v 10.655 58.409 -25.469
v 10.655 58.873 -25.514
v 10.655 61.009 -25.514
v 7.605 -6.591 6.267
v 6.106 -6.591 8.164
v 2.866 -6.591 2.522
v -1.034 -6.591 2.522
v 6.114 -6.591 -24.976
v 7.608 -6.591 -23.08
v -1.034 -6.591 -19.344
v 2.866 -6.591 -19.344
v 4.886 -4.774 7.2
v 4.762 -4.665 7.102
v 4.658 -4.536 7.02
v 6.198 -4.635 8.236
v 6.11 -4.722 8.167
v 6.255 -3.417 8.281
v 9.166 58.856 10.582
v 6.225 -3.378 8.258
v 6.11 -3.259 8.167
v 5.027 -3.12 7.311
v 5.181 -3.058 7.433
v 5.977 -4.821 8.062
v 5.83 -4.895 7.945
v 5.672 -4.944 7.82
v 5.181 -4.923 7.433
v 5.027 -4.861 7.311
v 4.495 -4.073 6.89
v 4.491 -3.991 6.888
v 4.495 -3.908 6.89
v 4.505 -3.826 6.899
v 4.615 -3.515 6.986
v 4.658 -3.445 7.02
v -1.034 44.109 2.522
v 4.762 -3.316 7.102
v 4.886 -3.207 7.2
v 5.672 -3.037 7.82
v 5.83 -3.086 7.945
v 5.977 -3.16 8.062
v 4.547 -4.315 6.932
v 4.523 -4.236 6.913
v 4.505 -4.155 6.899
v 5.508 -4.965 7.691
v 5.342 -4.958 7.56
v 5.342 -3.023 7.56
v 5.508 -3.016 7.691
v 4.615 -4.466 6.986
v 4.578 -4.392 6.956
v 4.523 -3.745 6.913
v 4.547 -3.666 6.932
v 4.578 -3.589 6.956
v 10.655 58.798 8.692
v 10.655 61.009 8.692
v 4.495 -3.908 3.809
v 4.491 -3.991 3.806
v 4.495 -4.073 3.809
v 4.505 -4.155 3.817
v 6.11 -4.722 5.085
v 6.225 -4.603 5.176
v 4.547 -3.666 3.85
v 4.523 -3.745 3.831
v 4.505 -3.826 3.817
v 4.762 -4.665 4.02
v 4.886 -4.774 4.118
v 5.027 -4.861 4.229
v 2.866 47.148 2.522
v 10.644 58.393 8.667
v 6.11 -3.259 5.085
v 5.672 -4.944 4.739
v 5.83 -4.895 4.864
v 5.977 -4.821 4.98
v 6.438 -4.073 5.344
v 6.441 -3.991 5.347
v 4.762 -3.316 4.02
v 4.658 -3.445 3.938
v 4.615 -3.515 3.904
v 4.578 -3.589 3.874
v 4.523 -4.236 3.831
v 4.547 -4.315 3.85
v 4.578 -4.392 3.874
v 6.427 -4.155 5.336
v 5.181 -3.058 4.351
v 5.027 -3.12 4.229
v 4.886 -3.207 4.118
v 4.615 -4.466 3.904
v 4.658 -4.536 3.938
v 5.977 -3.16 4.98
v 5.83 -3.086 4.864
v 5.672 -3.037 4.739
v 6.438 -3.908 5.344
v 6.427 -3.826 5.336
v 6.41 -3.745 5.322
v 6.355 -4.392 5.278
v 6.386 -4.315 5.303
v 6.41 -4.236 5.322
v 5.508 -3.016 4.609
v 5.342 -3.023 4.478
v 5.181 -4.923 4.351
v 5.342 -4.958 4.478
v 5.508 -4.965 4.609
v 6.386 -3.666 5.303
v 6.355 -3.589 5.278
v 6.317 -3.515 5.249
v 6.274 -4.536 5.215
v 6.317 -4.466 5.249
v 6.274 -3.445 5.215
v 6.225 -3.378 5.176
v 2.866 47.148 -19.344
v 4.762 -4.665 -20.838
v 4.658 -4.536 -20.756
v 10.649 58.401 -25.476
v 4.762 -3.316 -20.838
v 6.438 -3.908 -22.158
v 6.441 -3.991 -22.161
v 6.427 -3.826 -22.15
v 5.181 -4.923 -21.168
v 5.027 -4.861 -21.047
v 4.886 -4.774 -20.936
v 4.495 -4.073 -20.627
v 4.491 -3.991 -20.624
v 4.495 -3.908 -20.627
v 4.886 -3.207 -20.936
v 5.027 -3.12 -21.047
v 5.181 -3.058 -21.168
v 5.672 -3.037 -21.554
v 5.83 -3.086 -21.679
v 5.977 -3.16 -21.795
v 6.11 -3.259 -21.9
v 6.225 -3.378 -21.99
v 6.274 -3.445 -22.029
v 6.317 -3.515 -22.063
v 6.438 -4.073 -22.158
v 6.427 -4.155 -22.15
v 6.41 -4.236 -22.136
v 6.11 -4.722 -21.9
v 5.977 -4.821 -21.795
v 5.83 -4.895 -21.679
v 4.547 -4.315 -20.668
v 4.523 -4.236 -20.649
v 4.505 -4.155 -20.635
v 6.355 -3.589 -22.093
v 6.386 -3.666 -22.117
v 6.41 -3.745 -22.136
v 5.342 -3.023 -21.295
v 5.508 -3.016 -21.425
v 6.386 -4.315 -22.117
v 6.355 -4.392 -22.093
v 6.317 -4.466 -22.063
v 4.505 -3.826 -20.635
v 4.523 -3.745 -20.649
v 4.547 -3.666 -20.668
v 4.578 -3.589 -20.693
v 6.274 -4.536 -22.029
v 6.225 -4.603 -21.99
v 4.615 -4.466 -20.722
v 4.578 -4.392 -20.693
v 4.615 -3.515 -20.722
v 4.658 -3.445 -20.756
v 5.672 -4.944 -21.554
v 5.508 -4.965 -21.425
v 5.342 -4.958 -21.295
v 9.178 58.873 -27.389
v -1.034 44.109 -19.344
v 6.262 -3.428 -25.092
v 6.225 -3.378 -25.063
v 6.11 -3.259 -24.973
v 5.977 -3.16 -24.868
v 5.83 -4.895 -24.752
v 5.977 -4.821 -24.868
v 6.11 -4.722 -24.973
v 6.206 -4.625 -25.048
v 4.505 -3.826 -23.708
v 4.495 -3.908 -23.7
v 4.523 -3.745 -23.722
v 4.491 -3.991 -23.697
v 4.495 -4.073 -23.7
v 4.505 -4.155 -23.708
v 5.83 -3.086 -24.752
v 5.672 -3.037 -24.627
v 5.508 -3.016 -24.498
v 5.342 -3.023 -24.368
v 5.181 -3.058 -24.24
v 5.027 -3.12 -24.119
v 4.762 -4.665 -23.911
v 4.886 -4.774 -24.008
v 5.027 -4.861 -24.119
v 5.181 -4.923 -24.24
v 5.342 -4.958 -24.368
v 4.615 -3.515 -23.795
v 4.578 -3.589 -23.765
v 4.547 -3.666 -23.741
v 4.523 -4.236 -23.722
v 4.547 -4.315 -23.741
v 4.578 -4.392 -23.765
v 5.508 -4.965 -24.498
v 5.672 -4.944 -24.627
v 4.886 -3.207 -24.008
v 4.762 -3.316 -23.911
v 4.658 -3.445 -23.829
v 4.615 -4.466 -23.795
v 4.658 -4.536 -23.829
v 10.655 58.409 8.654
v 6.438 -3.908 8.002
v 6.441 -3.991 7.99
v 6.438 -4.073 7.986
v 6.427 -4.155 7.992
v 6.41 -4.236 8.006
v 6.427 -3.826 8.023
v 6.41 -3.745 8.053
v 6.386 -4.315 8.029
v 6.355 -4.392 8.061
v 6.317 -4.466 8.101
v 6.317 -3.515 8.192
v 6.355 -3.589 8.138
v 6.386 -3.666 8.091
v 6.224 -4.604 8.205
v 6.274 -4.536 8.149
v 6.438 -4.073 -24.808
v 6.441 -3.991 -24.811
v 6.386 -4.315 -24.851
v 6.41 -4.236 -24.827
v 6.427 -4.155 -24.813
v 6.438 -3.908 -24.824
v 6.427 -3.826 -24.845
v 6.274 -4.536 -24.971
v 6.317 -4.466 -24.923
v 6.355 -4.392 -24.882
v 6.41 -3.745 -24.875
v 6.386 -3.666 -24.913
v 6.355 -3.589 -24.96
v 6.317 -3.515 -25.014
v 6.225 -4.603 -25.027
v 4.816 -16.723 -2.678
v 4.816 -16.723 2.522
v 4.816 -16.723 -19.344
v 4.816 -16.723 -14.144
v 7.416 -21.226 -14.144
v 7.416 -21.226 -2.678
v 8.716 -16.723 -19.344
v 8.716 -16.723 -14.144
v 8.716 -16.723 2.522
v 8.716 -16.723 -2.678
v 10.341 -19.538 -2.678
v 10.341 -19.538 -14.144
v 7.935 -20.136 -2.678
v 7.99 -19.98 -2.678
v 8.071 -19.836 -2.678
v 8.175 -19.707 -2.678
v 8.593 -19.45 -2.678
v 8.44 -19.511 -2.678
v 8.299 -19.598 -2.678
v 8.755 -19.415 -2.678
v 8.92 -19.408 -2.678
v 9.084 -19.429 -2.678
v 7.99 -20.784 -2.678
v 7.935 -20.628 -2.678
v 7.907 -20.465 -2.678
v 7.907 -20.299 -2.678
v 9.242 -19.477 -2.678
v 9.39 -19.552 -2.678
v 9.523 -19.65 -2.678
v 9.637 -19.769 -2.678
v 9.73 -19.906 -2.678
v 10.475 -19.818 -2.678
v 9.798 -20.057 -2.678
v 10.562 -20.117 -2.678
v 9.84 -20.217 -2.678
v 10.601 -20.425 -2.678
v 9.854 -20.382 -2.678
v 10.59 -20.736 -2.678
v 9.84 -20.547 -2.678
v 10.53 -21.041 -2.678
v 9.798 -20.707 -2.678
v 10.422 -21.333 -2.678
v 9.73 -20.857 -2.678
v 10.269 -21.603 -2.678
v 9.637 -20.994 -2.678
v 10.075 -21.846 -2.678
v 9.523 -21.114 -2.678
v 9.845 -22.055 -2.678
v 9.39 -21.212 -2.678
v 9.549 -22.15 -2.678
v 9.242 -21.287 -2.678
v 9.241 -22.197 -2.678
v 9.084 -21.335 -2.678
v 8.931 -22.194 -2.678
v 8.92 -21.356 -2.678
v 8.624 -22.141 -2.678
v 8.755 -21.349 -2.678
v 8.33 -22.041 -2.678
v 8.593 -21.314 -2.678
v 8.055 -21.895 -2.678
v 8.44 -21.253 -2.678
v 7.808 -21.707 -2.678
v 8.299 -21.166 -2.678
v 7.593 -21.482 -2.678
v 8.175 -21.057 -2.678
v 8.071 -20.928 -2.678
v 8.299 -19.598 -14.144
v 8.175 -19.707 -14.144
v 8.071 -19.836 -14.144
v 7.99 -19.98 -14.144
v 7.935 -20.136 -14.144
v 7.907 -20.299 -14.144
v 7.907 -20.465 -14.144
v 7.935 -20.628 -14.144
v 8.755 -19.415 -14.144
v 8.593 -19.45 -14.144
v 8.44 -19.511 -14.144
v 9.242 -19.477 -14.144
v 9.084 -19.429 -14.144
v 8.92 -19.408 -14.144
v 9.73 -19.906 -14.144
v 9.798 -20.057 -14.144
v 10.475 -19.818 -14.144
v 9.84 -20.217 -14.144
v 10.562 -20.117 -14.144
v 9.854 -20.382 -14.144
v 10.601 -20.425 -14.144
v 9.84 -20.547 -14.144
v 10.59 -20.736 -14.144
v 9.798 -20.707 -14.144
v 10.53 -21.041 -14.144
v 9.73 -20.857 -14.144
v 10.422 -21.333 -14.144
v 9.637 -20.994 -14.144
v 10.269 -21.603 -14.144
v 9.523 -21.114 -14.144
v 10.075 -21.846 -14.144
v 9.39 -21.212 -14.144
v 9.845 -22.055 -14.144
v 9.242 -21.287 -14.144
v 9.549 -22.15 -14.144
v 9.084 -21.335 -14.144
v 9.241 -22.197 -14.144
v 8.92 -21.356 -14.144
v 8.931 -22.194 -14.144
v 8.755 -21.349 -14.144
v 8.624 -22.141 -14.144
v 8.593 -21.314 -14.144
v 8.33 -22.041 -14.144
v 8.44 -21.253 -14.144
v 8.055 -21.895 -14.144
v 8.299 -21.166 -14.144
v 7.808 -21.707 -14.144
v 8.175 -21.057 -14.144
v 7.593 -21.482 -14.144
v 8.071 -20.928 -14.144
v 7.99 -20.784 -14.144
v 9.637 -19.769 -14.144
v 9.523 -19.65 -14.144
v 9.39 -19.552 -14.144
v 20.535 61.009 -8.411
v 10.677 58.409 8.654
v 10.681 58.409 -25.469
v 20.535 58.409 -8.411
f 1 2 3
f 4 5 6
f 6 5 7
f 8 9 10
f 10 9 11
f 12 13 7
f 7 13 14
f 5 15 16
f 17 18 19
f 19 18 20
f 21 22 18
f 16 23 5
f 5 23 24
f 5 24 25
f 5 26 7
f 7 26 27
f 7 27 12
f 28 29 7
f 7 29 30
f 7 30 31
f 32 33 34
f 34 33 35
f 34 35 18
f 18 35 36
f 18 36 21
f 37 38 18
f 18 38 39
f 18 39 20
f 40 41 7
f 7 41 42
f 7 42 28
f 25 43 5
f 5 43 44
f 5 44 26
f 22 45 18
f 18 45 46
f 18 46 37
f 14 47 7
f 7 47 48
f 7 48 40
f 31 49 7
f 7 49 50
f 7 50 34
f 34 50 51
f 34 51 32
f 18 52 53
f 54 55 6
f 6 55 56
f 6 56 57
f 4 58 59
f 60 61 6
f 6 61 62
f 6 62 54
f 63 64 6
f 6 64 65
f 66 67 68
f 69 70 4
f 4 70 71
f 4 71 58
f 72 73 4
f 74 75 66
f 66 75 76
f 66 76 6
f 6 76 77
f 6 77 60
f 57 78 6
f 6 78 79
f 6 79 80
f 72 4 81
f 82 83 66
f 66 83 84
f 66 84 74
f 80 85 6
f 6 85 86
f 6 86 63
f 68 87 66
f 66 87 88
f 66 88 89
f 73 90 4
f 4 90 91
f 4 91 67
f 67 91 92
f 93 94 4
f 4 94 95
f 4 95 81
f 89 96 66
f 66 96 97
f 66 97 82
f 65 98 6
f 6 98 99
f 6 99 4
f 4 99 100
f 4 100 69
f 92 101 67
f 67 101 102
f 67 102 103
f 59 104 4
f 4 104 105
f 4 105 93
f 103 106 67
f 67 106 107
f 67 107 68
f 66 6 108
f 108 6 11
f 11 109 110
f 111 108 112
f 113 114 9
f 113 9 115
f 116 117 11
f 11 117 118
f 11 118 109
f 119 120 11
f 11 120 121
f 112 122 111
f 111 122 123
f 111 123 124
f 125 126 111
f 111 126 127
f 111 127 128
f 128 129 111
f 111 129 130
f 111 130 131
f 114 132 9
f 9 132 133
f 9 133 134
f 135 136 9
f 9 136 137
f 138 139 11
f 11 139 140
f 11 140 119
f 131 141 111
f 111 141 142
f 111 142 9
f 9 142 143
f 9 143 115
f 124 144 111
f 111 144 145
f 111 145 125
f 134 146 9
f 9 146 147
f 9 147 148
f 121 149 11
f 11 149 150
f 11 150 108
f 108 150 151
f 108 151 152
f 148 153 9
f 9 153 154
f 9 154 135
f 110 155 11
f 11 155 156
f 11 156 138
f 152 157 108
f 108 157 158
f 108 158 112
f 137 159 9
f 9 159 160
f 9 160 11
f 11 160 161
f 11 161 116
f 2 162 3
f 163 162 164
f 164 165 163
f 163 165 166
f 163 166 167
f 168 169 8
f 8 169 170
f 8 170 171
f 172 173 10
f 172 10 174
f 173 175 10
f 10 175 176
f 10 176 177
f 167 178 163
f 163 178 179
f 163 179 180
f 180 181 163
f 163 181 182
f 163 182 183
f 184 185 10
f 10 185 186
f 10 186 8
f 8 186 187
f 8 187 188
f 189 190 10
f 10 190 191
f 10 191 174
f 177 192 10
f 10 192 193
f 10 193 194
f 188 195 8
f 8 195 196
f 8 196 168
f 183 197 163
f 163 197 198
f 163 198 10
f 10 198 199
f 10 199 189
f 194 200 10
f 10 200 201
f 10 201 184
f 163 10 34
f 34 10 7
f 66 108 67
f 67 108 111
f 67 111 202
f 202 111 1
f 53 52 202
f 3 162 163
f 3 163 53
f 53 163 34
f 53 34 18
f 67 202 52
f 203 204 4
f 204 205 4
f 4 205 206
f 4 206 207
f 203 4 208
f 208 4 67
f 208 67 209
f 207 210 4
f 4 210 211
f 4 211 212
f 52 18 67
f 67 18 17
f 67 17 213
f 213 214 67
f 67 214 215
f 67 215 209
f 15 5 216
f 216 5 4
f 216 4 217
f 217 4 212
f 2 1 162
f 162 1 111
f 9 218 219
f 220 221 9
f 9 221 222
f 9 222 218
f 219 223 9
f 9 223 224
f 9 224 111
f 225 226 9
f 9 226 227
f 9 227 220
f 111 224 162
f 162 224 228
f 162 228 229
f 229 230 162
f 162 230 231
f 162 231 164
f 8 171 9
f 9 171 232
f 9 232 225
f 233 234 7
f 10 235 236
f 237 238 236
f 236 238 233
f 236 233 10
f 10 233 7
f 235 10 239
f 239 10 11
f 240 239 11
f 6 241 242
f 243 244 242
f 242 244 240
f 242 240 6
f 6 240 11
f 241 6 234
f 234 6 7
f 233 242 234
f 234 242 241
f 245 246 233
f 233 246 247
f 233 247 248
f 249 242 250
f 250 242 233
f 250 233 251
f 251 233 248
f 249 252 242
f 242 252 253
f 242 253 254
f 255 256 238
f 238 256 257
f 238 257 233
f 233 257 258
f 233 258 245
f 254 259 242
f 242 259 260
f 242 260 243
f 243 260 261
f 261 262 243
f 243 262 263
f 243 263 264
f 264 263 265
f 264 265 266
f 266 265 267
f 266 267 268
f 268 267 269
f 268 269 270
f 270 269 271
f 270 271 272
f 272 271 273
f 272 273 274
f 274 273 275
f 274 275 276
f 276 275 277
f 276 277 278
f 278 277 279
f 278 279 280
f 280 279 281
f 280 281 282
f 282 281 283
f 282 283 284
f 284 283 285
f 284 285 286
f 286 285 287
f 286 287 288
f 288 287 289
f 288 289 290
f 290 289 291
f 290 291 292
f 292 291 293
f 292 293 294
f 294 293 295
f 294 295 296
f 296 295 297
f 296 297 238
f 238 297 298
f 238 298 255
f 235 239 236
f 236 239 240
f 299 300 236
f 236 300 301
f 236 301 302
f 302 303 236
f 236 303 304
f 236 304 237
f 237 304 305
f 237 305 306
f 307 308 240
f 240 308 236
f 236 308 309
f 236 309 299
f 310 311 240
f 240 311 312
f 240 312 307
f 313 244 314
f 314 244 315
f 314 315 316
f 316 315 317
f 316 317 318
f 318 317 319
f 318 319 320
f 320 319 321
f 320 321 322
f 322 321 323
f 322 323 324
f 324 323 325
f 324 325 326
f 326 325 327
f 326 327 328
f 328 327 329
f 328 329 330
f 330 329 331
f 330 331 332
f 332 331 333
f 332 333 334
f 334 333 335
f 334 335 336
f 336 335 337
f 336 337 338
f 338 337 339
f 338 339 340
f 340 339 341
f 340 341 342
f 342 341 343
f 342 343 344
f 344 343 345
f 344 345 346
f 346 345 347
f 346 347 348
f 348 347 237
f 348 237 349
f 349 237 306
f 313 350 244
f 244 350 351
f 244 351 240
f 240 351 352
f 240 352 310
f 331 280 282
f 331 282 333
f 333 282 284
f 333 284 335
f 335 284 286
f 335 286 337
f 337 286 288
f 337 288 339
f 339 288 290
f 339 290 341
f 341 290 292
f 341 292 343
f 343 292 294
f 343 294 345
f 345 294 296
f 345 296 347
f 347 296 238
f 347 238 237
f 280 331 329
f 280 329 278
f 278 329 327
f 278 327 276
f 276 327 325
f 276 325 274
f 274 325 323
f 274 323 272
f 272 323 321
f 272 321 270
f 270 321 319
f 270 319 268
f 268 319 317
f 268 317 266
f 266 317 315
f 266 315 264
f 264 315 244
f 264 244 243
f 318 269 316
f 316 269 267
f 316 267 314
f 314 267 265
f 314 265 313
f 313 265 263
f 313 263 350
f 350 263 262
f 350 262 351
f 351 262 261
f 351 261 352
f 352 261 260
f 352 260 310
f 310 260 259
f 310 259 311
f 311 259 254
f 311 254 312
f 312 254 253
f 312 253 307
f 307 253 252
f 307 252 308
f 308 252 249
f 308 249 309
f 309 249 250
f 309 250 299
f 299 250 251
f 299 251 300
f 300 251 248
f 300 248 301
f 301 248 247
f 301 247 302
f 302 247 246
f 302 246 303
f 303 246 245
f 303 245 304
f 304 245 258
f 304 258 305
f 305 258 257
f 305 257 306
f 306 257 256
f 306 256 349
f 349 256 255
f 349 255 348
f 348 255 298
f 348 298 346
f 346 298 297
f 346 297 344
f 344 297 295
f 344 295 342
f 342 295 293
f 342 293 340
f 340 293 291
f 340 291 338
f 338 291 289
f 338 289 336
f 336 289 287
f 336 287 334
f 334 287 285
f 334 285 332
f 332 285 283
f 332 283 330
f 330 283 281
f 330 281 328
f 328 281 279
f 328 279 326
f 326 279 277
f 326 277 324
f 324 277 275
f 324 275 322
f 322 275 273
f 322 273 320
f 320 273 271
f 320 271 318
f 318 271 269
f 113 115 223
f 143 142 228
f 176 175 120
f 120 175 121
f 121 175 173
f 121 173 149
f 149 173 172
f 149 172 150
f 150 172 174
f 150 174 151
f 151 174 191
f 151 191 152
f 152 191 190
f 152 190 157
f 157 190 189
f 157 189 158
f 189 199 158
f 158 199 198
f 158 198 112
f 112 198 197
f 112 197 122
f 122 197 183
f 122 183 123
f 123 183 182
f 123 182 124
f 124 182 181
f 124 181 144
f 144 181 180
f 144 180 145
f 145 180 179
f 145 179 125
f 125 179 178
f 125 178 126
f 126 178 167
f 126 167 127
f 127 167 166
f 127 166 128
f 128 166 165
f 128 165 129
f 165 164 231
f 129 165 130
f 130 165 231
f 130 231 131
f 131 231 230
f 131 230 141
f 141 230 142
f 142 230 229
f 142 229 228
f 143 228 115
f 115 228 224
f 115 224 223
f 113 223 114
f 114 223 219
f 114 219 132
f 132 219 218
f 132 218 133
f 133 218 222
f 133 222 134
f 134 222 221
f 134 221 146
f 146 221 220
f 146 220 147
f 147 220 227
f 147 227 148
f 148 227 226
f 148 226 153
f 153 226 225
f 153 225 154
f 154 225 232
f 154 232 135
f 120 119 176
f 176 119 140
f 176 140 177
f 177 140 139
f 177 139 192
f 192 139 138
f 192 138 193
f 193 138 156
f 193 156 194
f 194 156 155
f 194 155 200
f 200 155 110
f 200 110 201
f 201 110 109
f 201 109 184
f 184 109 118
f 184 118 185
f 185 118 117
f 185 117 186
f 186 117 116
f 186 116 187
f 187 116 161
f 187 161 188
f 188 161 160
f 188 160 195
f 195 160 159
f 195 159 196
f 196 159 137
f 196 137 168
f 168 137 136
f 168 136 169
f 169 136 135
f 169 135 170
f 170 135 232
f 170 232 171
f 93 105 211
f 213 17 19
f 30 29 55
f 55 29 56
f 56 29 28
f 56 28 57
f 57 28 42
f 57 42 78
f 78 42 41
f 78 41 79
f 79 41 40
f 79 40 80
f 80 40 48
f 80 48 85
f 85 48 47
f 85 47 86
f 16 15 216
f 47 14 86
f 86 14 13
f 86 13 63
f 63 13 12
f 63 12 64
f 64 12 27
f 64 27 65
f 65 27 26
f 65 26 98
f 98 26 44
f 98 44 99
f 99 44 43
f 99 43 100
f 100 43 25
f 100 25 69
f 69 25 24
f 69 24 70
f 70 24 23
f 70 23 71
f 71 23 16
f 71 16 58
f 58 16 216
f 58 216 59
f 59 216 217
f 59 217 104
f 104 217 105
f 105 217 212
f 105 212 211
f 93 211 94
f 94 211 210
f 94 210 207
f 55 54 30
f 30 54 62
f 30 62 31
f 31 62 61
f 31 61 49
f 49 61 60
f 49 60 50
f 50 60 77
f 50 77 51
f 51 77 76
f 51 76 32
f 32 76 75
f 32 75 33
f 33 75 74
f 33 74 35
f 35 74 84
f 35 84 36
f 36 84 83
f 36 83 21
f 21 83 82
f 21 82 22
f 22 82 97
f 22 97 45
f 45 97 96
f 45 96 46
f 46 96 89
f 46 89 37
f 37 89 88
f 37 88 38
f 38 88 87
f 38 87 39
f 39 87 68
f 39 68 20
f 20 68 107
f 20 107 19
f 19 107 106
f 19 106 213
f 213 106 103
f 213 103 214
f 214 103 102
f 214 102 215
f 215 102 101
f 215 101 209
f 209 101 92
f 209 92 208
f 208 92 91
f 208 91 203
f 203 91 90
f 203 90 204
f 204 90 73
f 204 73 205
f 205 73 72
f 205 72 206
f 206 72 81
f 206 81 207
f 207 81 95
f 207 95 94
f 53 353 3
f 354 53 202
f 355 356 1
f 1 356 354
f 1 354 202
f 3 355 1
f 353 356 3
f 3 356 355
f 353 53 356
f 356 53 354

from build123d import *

# Parameters (mm, degrees)
BOSS_EXTRUDE1_DEPTH     = 50
CUT_EXTRUDE1_DEPTH      = 30
BOSS_EXTRUDE2_DEPTH     = 2
CUT_EXTRUDE2_DEPTH      = 2
CUT_EXTRUDE3_DEPTH      = 2
SKETCH9_W               = 3
SKETCH9_H               = 16.82
BOSS_EXTRUDE3_DEPTH     = 13
SKETCH10_W              = 4
SKETCH10_H              = 4
CUT_EXTRUDE4_DEPTH      = 15
BOSS_EXTRUDE4_DEPTH     = 8.82
FILLET1_R               = 1.5
SKETCH12_R              = 0.75
CUT_EXTRUDE5_DEPTH      = 57.090755147
CUT_EXTRUDE7_DEPTH      = 58.56944687
CUT_EXTRUDE7_DEPTH_BACK = 58.56944687
SKETCH15_R              = 0.75
BOSS_EXTRUDE5_DEPTH     = 7.6
CUT_EXTRUDE8_DEPTH      = 3
CUT_EXTRUDE9_DEPTH      = 3
SCALE1_SCALE            = 1.3


with BuildPart() as part:
    # Sketch1 → Boss-Extrude1 (new body)
    with BuildSketch(Plane(origin=(0, 0, 0), x_dir=(1, 0, 0), z_dir=(0, 1, 0))):
        Polygon((0, 0), (0, 16.82), (7.855052448, 23.008549995), (9.003996979, 21.550208451), (3, 16.82), (3, 0), (8.997095559, -4.738955219), (7.846023294, -6.199993425), align=None)
    extrude(amount=BOSS_EXTRUDE1_DEPTH)

    # Sketch2 → Cut-Extrude1 (cut, along a direction that is not the sketch's normal)
    with BuildSketch(Plane(origin=(0, 0, 0), x_dir=(0.7846023293722103, 0, 0.6199993425348946), z_dir=(-0.6199993425348946, 0, 0.7846023293722103))):
        Polygon((11.46, 50), (0, 37), (0, 50), align=None)
    extrude(amount=-CUT_EXTRUDE1_DEPTH, dir=(0, 0, 1), mode=Mode.SUBTRACT)

    # Sketch5 → Boss-Extrude2 (add, along a direction that is not the sketch's normal)
    with BuildSketch(Plane(origin=(-17.310263861, 11.972767428, 0), x_dir=(0, 0, 1), z_dir=(-0.8224425153975565, 0.568848230081223, 0))):
        Polygon((0, 30.43037307), (6.199993425, 44.223196672), (4.746003384, 46.236948917), (-21.566016526, 46.236948917), (-23.008549995, 44.239069366), (-16.82, 30.43037307), align=None)
    extrude(amount=BOSS_EXTRUDE2_DEPTH, dir=(0, 1, 0))

    # Sketch6 → Cut-Extrude2 (cut)
    with BuildSketch(Plane(origin=(0, 0, 0), x_dir=(0.7846023293722103, 0, 0.6199993425348946), z_dir=(-0.6199993425348946, 0, 0.7846023293722103))):
        Polygon((10, 50.343804538), (7, 0), (10, 0), align=None)
    extrude(amount=-CUT_EXTRUDE2_DEPTH, mode=Mode.SUBTRACT)

    # Sketch7 → Cut-Extrude3 (cut)
    with BuildSketch(Plane(origin=(-8.176434921, 0, -10.378250996), x_dir=(-0.7855052448151816, 0, 0.6188549994690533), z_dir=(-0.6188549994690533, 0, -0.7855052448151816))):
        Polygon((-20.409141091, 50.356858917), (-20.409141091, 0), (-17.409141091, 0), align=None)
    extrude(amount=-CUT_EXTRUDE3_DEPTH, mode=Mode.SUBTRACT)

    # Sketch9 → Boss-Extrude3 (add, along a direction that is not the sketch's normal)
    with BuildSketch(Plane.XZ):
        with Locations((1.5, -8.41)):
            Rectangle(SKETCH9_W, SKETCH9_H)
    extrude(amount=BOSS_EXTRUDE3_DEPTH, dir=(0.5000000000000012, -0.866025403784438, 0))

    # Sketch10 → Cut-Extrude4 (cut, along a direction that is not the sketch's normal)
    with BuildSketch(Plane(origin=(0, 0, 0), x_dir=(0, 0, 1), z_dir=(-0.8660254037844379, -0.5000000000000014, 0))):
        with Locations((-14.82, -11)):
            Rectangle(SKETCH10_W, SKETCH10_H)
        with Locations((-2, -11)):
            Rectangle(SKETCH10_W, SKETCH10_H)
    extrude(amount=-CUT_EXTRUDE4_DEPTH, dir=(-1, 0, 0), mode=Mode.SUBTRACT)

    # Sketch11 → Boss-Extrude4 (add)
    with BuildSketch(Plane(origin=(0, 0, -12.82), x_dir=(-1, 0, 0), z_dir=(0, 0, -1))):
        Polygon((-9.5, -11.258330249), (-7.25, -12.557368355), (-6.5, -11.258330249), align=None)
    extrude(amount=-BOSS_EXTRUDE4_DEPTH)

    # Fillet1
    # the kernel refuses this fillet: 1.5 mm, written as the material it takes off along each edge
    with BuildSketch(Plane(origin=(9.5, -11.258330249, -0.25), x_dir=(-0.8660254037844393, -0.49999999999999895, 0), z_dir=(0, 0, -1)), Plane(origin=(7.25, -12.557368355, -16.57), x_dir=(0.8660254037844389, 0.4999999999999996, 0), z_dir=(0, 0, 1))) as fillet1_piece_1:
        with BuildLine():
            CenterArc((FILLET1_R, FILLET1_R), FILLET1_R, 180, 90)
            Line((0, FILLET1_R), (0, 0))
            Line((0, 0), (FILLET1_R, 0))
        make_face()
    extrude(amount=16.32, mode=Mode.SUBTRACT)

    # Sketch12 → Cut-Extrude5 (cut, through all)
    with BuildSketch(Plane.XY.offset(-4)):
        with Locations((7.625, -10.608811196)):
            Circle(SKETCH12_R)
    extrude(amount=-CUT_EXTRUDE5_DEPTH, mode=Mode.SUBTRACT)

    # Sketch15 → Cut-Extrude7 (cut, two sides: drawn at the far end of the back side and taken through both)
    with BuildSketch(Plane.XY.offset(-CUT_EXTRUDE7_DEPTH_BACK)):
        with Locations(Location((5, 2, 0), (0, 0, 35.261867611))):
            Circle(SKETCH15_R)
    extrude(amount=CUT_EXTRUDE7_DEPTH + CUT_EXTRUDE7_DEPTH_BACK, mode=Mode.SUBTRACT)

    # Sketch17 → Boss-Extrude5 (add)
    with BuildSketch(Plane(origin=(8.991542695, 0, 0), x_dir=(0, 0, -1), z_dir=(1, 0, 0))):
        Polygon((-4.746003384, 52), (-4.717307032, 50), (21.531663082, 50), (21.566016526, 52), align=None)
    extrude(amount=BOSS_EXTRUDE5_DEPTH)

    # Sketch18 → Cut-Extrude8 (cut)
    with BuildSketch(Plane(origin=(0, 52, 0), x_dir=(1, 0, 0), z_dir=(0, 1, 0))):
        Polygon((8.991542695, 21.566016526), (16.591542695, 8.410006571), (16.591542695, 21.566016526), align=None)
    extrude(amount=-CUT_EXTRUDE8_DEPTH, mode=Mode.SUBTRACT)

    # Sketch19 → Cut-Extrude9 (cut)
    with BuildSketch(Plane(origin=(0, 52, 0), x_dir=(1, 0, 0), z_dir=(0, 1, 0))):
        Polygon((16.591542695, 8.410006571), (8.991542695, -4.746003384), (16.591542695, -4.746003384), align=None)
    extrude(amount=-CUT_EXTRUDE9_DEPTH, mode=Mode.SUBTRACT)


with BuildPart() as part_1:
    # Scale1: scaled about (3.445853057, 21.968382551, -8.406041901)
    add(part.part.scale(SCALE1_SCALE).moved(Location((-1.033755917, -6.590514765, 2.52181257))))


solid = part_1.part
